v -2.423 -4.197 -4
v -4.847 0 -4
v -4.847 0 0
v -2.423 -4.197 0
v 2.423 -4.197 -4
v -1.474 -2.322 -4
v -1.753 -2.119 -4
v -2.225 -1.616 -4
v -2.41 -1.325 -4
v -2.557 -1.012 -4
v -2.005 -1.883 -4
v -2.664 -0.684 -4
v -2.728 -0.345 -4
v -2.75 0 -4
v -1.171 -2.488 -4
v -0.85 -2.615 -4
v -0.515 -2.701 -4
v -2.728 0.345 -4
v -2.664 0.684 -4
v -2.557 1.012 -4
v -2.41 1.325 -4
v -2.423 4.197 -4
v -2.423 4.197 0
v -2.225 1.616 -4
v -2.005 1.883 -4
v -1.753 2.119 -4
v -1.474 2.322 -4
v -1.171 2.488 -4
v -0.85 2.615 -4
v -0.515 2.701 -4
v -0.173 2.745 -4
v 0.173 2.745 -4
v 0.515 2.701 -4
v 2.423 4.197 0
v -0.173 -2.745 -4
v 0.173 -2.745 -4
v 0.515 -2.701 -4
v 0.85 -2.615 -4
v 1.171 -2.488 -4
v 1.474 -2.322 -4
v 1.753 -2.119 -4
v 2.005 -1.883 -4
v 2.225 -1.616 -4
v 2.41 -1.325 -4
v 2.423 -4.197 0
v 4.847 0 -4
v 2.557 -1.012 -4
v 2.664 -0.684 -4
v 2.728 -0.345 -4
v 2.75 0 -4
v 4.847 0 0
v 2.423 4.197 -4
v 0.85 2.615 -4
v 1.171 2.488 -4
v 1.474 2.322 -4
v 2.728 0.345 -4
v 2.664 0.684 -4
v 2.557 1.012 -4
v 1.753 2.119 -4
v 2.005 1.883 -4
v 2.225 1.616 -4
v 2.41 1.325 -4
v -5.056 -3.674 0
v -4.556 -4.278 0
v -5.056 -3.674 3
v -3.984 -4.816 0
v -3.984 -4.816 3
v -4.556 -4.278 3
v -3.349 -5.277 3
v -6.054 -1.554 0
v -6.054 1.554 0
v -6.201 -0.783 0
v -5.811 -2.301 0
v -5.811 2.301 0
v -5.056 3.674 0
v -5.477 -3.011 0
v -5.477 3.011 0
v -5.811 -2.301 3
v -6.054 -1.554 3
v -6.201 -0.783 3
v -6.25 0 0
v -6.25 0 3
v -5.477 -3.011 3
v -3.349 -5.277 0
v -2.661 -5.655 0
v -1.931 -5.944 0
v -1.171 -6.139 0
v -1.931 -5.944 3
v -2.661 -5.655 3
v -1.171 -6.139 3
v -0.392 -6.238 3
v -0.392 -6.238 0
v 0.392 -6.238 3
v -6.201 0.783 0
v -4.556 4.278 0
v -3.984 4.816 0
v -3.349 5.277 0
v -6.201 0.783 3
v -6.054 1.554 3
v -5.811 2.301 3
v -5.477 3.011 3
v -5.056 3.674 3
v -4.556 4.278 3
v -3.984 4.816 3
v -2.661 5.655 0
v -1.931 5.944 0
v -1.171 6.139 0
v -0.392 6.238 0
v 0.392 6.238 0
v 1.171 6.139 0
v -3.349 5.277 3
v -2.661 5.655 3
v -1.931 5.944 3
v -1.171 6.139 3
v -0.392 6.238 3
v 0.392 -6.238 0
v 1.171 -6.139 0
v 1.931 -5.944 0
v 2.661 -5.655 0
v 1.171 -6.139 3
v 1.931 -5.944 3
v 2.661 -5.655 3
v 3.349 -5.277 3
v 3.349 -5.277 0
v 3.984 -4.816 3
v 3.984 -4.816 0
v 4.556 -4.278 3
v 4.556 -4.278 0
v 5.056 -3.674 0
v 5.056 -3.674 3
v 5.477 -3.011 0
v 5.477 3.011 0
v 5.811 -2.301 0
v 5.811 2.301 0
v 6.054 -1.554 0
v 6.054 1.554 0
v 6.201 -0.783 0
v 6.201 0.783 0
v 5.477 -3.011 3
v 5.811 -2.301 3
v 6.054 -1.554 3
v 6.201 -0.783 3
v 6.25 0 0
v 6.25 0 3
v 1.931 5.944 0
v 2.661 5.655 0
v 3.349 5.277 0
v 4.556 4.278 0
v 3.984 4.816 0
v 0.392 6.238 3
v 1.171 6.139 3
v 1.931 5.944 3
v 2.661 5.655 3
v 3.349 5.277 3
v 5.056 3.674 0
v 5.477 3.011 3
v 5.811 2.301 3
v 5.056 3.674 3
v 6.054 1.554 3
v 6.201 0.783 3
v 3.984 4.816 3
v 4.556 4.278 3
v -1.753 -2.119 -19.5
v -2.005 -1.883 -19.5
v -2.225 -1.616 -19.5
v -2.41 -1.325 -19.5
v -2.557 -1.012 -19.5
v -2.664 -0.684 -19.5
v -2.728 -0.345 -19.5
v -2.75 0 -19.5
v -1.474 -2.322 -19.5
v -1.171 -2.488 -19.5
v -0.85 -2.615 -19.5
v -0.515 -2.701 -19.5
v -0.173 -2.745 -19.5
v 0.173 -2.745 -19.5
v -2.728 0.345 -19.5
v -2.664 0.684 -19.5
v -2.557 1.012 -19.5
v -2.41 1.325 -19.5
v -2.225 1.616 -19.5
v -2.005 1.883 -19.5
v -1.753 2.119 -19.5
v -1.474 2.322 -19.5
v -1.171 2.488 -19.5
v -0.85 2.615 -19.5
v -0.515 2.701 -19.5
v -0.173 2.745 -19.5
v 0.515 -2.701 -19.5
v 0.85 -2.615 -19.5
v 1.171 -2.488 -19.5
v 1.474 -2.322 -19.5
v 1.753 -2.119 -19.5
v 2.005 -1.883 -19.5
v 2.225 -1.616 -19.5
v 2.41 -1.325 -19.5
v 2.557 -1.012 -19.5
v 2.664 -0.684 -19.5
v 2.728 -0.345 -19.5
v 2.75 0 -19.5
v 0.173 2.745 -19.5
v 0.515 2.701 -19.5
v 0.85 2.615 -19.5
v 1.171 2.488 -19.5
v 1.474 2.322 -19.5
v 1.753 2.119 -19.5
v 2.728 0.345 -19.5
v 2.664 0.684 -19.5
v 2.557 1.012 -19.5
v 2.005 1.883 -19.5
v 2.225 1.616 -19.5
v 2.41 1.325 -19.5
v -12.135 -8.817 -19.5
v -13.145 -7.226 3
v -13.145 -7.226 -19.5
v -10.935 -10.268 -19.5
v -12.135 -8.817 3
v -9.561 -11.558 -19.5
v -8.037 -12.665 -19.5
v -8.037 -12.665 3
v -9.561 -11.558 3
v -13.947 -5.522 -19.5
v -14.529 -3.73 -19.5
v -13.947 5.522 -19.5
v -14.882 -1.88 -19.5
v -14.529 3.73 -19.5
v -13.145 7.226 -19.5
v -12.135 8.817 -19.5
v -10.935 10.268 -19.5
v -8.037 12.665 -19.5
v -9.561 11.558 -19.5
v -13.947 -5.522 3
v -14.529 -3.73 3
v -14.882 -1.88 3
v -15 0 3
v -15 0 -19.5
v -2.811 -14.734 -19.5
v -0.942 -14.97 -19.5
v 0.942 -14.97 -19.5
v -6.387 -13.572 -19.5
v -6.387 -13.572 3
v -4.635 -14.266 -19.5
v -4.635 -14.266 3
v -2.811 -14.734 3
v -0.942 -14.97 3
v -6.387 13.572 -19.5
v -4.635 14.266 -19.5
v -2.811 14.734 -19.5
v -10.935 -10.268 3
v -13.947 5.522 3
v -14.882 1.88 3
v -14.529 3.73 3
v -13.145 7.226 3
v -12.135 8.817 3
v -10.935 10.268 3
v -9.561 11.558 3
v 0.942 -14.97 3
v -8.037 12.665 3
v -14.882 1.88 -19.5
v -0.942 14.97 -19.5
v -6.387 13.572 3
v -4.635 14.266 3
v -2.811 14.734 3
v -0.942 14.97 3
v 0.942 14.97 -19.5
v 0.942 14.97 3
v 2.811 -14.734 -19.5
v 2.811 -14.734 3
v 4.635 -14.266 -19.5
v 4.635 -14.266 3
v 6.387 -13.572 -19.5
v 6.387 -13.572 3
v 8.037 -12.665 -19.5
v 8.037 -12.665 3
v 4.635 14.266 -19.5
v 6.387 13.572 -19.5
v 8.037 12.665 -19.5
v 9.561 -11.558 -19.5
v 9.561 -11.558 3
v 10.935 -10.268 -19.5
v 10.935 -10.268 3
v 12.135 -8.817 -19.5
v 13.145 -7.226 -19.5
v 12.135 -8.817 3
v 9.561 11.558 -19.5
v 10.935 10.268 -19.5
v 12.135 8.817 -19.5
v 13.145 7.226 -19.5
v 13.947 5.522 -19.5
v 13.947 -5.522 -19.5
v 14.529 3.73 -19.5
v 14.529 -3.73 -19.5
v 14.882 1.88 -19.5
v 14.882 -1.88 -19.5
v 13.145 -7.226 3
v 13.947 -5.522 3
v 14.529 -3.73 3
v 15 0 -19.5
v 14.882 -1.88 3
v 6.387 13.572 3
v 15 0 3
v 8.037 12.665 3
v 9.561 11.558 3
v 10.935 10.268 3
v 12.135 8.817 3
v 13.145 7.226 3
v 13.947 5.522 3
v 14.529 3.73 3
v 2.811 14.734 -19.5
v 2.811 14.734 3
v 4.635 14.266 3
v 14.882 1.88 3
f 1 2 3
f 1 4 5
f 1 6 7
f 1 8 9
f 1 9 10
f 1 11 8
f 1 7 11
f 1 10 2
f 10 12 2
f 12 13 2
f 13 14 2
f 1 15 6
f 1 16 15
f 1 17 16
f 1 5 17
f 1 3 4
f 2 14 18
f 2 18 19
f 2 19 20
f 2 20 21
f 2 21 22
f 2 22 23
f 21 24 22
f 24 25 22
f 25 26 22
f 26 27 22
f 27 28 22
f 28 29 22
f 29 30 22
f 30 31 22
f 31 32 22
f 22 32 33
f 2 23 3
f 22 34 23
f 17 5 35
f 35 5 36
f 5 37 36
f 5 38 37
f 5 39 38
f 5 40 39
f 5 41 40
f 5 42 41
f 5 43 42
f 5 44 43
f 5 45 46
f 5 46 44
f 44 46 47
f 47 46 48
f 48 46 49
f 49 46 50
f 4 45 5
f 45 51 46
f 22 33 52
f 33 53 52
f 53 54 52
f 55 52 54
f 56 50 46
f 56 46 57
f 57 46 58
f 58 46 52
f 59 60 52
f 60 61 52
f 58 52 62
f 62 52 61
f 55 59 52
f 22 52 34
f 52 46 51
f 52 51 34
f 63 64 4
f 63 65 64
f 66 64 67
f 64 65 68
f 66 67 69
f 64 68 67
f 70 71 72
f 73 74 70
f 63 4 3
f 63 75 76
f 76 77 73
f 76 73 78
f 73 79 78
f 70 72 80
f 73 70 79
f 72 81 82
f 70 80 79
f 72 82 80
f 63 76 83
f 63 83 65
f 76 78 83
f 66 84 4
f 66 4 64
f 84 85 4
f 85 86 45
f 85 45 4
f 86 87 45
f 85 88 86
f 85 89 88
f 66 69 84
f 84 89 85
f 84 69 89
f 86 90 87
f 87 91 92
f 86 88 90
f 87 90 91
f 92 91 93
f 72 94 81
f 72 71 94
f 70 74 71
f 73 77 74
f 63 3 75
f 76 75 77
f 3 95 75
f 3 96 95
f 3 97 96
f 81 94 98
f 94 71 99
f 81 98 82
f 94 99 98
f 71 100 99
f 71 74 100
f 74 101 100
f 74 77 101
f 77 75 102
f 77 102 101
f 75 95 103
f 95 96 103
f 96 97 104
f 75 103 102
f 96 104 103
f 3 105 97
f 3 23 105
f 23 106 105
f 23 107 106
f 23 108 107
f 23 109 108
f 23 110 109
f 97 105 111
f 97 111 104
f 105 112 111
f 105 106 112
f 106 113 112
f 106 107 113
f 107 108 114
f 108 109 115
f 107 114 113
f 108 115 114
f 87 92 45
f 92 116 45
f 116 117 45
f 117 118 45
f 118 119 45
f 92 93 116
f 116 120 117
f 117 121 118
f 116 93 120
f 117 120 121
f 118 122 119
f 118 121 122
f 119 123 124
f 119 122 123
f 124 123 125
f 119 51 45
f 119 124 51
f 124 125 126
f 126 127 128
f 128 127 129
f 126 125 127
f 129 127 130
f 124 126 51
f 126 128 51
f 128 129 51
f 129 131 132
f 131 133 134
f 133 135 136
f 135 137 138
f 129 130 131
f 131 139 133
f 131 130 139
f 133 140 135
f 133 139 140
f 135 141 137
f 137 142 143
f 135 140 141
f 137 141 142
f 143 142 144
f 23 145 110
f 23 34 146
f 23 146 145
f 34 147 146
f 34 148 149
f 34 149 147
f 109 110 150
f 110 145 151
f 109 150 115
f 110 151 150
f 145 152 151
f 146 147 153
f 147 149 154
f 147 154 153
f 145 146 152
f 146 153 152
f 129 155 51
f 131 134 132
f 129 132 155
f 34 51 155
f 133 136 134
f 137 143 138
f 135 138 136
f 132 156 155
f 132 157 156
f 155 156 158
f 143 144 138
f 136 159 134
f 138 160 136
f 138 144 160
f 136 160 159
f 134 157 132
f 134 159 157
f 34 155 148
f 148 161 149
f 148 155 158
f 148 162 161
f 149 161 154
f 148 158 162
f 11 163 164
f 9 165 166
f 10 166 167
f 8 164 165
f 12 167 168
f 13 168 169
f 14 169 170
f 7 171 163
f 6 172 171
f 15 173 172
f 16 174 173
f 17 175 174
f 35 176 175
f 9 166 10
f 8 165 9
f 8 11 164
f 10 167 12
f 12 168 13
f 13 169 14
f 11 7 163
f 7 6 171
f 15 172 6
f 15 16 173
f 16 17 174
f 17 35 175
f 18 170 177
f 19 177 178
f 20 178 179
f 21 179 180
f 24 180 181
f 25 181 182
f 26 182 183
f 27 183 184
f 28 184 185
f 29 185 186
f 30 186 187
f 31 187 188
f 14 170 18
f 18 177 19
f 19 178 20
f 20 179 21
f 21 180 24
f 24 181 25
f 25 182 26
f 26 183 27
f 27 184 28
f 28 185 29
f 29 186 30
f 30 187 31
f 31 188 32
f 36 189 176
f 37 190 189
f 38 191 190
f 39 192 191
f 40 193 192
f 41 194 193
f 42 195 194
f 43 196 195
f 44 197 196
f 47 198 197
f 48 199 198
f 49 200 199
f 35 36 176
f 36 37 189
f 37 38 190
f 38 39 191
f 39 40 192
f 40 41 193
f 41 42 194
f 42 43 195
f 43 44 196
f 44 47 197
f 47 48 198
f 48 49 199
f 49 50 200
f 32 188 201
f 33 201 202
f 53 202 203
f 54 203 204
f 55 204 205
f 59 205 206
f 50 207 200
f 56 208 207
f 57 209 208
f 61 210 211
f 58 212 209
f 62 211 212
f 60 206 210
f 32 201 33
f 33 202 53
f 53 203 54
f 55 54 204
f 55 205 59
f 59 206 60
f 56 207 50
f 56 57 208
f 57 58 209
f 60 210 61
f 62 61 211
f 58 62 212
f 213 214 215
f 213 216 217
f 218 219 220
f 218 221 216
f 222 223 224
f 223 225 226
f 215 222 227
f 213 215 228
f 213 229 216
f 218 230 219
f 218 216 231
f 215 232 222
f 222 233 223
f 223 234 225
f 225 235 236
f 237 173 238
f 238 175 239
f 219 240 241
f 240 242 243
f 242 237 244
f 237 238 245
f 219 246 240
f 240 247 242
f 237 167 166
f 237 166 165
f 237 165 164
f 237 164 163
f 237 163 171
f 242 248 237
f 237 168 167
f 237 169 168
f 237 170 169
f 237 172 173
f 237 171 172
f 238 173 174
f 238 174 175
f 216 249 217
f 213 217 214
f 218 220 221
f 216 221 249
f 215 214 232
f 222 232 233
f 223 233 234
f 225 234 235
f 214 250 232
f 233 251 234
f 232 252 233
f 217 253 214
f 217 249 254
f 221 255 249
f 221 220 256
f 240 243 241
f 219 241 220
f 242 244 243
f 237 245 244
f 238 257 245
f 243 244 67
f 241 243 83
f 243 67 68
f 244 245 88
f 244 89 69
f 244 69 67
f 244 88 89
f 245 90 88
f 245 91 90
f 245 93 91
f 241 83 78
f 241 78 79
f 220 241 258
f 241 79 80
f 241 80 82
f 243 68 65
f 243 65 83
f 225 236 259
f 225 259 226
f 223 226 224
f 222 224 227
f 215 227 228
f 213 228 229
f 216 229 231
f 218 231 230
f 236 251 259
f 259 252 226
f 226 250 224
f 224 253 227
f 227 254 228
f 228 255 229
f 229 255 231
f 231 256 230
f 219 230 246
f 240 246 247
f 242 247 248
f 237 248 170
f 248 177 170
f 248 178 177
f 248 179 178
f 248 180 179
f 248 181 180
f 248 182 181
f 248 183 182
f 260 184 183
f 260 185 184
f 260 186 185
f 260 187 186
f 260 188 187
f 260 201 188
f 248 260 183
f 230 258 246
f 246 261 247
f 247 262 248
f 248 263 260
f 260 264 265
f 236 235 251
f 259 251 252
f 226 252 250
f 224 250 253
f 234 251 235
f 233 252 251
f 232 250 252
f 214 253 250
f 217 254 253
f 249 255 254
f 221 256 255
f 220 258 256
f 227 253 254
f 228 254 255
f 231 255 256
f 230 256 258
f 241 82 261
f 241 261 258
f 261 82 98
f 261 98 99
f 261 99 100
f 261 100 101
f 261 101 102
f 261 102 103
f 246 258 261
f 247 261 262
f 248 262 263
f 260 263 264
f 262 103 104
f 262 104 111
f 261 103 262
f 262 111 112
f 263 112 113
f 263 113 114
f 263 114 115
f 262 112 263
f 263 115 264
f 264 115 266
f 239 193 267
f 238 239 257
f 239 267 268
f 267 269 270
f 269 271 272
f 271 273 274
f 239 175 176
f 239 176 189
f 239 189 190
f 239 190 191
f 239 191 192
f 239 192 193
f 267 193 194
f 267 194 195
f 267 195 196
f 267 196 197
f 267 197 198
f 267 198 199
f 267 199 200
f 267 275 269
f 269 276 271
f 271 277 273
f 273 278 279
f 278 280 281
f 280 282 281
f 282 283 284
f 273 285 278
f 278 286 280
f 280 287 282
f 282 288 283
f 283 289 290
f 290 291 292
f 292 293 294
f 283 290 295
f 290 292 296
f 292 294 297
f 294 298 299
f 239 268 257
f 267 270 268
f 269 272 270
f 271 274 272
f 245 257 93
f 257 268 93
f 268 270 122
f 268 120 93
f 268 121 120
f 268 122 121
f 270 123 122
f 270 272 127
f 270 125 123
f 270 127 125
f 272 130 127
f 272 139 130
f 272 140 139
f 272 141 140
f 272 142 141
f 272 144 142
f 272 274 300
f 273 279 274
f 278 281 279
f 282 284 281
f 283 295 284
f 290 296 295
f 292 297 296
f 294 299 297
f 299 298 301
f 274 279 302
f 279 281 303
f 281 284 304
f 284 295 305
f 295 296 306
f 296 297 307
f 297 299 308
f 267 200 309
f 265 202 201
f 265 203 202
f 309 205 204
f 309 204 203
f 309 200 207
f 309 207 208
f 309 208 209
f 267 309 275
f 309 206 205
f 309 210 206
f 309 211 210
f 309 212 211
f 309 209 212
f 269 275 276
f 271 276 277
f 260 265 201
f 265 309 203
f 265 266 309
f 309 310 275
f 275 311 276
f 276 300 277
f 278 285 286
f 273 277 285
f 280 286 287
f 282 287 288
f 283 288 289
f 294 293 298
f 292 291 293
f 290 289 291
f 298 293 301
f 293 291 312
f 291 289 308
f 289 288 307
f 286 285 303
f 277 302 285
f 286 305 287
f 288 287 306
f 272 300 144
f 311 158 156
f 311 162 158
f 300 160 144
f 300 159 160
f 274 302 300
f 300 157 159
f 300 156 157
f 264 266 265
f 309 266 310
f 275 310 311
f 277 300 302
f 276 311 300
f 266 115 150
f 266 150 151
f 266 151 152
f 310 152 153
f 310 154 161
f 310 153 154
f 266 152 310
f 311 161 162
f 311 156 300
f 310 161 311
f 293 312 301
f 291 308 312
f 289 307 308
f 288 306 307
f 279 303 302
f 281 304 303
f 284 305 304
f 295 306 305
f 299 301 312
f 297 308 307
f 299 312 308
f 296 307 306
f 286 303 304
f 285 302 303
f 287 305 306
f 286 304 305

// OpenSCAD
$fn = 50;


difference() {
	union() {
		translate(v = [0, 0, -19.5000000000]) {
			cylinder(h = 22.5000000000, r = 15.0000000000);
		}
	}
	union() {
		translate(v = [0, 0, 0]) {
			rotate(a = [0, 0, 0]) {
				difference() {
					union() {
						translate(v = [0, 0, -4]) {
							linear_extrude(height = 4) {
								polygon(points = [[4.8468000000, 0.0000000000], [2.4234000000, 4.1974519271], [-2.4234000000, 4.1974519271], [-4.8468000000, 0.0000000000], [-2.4234000000, -4.1974519271], [2.4234000000, -4.1974519271]]);
							}
						}
					}
					union();
				}
			}
		}
		#cylinder(h = 3, r = 6.2500000000);
		#translate(v = [0, 0, -100.0000000000]) {
			cylinder(h = 200, r = 2.7500000000);
		}
	}
}
